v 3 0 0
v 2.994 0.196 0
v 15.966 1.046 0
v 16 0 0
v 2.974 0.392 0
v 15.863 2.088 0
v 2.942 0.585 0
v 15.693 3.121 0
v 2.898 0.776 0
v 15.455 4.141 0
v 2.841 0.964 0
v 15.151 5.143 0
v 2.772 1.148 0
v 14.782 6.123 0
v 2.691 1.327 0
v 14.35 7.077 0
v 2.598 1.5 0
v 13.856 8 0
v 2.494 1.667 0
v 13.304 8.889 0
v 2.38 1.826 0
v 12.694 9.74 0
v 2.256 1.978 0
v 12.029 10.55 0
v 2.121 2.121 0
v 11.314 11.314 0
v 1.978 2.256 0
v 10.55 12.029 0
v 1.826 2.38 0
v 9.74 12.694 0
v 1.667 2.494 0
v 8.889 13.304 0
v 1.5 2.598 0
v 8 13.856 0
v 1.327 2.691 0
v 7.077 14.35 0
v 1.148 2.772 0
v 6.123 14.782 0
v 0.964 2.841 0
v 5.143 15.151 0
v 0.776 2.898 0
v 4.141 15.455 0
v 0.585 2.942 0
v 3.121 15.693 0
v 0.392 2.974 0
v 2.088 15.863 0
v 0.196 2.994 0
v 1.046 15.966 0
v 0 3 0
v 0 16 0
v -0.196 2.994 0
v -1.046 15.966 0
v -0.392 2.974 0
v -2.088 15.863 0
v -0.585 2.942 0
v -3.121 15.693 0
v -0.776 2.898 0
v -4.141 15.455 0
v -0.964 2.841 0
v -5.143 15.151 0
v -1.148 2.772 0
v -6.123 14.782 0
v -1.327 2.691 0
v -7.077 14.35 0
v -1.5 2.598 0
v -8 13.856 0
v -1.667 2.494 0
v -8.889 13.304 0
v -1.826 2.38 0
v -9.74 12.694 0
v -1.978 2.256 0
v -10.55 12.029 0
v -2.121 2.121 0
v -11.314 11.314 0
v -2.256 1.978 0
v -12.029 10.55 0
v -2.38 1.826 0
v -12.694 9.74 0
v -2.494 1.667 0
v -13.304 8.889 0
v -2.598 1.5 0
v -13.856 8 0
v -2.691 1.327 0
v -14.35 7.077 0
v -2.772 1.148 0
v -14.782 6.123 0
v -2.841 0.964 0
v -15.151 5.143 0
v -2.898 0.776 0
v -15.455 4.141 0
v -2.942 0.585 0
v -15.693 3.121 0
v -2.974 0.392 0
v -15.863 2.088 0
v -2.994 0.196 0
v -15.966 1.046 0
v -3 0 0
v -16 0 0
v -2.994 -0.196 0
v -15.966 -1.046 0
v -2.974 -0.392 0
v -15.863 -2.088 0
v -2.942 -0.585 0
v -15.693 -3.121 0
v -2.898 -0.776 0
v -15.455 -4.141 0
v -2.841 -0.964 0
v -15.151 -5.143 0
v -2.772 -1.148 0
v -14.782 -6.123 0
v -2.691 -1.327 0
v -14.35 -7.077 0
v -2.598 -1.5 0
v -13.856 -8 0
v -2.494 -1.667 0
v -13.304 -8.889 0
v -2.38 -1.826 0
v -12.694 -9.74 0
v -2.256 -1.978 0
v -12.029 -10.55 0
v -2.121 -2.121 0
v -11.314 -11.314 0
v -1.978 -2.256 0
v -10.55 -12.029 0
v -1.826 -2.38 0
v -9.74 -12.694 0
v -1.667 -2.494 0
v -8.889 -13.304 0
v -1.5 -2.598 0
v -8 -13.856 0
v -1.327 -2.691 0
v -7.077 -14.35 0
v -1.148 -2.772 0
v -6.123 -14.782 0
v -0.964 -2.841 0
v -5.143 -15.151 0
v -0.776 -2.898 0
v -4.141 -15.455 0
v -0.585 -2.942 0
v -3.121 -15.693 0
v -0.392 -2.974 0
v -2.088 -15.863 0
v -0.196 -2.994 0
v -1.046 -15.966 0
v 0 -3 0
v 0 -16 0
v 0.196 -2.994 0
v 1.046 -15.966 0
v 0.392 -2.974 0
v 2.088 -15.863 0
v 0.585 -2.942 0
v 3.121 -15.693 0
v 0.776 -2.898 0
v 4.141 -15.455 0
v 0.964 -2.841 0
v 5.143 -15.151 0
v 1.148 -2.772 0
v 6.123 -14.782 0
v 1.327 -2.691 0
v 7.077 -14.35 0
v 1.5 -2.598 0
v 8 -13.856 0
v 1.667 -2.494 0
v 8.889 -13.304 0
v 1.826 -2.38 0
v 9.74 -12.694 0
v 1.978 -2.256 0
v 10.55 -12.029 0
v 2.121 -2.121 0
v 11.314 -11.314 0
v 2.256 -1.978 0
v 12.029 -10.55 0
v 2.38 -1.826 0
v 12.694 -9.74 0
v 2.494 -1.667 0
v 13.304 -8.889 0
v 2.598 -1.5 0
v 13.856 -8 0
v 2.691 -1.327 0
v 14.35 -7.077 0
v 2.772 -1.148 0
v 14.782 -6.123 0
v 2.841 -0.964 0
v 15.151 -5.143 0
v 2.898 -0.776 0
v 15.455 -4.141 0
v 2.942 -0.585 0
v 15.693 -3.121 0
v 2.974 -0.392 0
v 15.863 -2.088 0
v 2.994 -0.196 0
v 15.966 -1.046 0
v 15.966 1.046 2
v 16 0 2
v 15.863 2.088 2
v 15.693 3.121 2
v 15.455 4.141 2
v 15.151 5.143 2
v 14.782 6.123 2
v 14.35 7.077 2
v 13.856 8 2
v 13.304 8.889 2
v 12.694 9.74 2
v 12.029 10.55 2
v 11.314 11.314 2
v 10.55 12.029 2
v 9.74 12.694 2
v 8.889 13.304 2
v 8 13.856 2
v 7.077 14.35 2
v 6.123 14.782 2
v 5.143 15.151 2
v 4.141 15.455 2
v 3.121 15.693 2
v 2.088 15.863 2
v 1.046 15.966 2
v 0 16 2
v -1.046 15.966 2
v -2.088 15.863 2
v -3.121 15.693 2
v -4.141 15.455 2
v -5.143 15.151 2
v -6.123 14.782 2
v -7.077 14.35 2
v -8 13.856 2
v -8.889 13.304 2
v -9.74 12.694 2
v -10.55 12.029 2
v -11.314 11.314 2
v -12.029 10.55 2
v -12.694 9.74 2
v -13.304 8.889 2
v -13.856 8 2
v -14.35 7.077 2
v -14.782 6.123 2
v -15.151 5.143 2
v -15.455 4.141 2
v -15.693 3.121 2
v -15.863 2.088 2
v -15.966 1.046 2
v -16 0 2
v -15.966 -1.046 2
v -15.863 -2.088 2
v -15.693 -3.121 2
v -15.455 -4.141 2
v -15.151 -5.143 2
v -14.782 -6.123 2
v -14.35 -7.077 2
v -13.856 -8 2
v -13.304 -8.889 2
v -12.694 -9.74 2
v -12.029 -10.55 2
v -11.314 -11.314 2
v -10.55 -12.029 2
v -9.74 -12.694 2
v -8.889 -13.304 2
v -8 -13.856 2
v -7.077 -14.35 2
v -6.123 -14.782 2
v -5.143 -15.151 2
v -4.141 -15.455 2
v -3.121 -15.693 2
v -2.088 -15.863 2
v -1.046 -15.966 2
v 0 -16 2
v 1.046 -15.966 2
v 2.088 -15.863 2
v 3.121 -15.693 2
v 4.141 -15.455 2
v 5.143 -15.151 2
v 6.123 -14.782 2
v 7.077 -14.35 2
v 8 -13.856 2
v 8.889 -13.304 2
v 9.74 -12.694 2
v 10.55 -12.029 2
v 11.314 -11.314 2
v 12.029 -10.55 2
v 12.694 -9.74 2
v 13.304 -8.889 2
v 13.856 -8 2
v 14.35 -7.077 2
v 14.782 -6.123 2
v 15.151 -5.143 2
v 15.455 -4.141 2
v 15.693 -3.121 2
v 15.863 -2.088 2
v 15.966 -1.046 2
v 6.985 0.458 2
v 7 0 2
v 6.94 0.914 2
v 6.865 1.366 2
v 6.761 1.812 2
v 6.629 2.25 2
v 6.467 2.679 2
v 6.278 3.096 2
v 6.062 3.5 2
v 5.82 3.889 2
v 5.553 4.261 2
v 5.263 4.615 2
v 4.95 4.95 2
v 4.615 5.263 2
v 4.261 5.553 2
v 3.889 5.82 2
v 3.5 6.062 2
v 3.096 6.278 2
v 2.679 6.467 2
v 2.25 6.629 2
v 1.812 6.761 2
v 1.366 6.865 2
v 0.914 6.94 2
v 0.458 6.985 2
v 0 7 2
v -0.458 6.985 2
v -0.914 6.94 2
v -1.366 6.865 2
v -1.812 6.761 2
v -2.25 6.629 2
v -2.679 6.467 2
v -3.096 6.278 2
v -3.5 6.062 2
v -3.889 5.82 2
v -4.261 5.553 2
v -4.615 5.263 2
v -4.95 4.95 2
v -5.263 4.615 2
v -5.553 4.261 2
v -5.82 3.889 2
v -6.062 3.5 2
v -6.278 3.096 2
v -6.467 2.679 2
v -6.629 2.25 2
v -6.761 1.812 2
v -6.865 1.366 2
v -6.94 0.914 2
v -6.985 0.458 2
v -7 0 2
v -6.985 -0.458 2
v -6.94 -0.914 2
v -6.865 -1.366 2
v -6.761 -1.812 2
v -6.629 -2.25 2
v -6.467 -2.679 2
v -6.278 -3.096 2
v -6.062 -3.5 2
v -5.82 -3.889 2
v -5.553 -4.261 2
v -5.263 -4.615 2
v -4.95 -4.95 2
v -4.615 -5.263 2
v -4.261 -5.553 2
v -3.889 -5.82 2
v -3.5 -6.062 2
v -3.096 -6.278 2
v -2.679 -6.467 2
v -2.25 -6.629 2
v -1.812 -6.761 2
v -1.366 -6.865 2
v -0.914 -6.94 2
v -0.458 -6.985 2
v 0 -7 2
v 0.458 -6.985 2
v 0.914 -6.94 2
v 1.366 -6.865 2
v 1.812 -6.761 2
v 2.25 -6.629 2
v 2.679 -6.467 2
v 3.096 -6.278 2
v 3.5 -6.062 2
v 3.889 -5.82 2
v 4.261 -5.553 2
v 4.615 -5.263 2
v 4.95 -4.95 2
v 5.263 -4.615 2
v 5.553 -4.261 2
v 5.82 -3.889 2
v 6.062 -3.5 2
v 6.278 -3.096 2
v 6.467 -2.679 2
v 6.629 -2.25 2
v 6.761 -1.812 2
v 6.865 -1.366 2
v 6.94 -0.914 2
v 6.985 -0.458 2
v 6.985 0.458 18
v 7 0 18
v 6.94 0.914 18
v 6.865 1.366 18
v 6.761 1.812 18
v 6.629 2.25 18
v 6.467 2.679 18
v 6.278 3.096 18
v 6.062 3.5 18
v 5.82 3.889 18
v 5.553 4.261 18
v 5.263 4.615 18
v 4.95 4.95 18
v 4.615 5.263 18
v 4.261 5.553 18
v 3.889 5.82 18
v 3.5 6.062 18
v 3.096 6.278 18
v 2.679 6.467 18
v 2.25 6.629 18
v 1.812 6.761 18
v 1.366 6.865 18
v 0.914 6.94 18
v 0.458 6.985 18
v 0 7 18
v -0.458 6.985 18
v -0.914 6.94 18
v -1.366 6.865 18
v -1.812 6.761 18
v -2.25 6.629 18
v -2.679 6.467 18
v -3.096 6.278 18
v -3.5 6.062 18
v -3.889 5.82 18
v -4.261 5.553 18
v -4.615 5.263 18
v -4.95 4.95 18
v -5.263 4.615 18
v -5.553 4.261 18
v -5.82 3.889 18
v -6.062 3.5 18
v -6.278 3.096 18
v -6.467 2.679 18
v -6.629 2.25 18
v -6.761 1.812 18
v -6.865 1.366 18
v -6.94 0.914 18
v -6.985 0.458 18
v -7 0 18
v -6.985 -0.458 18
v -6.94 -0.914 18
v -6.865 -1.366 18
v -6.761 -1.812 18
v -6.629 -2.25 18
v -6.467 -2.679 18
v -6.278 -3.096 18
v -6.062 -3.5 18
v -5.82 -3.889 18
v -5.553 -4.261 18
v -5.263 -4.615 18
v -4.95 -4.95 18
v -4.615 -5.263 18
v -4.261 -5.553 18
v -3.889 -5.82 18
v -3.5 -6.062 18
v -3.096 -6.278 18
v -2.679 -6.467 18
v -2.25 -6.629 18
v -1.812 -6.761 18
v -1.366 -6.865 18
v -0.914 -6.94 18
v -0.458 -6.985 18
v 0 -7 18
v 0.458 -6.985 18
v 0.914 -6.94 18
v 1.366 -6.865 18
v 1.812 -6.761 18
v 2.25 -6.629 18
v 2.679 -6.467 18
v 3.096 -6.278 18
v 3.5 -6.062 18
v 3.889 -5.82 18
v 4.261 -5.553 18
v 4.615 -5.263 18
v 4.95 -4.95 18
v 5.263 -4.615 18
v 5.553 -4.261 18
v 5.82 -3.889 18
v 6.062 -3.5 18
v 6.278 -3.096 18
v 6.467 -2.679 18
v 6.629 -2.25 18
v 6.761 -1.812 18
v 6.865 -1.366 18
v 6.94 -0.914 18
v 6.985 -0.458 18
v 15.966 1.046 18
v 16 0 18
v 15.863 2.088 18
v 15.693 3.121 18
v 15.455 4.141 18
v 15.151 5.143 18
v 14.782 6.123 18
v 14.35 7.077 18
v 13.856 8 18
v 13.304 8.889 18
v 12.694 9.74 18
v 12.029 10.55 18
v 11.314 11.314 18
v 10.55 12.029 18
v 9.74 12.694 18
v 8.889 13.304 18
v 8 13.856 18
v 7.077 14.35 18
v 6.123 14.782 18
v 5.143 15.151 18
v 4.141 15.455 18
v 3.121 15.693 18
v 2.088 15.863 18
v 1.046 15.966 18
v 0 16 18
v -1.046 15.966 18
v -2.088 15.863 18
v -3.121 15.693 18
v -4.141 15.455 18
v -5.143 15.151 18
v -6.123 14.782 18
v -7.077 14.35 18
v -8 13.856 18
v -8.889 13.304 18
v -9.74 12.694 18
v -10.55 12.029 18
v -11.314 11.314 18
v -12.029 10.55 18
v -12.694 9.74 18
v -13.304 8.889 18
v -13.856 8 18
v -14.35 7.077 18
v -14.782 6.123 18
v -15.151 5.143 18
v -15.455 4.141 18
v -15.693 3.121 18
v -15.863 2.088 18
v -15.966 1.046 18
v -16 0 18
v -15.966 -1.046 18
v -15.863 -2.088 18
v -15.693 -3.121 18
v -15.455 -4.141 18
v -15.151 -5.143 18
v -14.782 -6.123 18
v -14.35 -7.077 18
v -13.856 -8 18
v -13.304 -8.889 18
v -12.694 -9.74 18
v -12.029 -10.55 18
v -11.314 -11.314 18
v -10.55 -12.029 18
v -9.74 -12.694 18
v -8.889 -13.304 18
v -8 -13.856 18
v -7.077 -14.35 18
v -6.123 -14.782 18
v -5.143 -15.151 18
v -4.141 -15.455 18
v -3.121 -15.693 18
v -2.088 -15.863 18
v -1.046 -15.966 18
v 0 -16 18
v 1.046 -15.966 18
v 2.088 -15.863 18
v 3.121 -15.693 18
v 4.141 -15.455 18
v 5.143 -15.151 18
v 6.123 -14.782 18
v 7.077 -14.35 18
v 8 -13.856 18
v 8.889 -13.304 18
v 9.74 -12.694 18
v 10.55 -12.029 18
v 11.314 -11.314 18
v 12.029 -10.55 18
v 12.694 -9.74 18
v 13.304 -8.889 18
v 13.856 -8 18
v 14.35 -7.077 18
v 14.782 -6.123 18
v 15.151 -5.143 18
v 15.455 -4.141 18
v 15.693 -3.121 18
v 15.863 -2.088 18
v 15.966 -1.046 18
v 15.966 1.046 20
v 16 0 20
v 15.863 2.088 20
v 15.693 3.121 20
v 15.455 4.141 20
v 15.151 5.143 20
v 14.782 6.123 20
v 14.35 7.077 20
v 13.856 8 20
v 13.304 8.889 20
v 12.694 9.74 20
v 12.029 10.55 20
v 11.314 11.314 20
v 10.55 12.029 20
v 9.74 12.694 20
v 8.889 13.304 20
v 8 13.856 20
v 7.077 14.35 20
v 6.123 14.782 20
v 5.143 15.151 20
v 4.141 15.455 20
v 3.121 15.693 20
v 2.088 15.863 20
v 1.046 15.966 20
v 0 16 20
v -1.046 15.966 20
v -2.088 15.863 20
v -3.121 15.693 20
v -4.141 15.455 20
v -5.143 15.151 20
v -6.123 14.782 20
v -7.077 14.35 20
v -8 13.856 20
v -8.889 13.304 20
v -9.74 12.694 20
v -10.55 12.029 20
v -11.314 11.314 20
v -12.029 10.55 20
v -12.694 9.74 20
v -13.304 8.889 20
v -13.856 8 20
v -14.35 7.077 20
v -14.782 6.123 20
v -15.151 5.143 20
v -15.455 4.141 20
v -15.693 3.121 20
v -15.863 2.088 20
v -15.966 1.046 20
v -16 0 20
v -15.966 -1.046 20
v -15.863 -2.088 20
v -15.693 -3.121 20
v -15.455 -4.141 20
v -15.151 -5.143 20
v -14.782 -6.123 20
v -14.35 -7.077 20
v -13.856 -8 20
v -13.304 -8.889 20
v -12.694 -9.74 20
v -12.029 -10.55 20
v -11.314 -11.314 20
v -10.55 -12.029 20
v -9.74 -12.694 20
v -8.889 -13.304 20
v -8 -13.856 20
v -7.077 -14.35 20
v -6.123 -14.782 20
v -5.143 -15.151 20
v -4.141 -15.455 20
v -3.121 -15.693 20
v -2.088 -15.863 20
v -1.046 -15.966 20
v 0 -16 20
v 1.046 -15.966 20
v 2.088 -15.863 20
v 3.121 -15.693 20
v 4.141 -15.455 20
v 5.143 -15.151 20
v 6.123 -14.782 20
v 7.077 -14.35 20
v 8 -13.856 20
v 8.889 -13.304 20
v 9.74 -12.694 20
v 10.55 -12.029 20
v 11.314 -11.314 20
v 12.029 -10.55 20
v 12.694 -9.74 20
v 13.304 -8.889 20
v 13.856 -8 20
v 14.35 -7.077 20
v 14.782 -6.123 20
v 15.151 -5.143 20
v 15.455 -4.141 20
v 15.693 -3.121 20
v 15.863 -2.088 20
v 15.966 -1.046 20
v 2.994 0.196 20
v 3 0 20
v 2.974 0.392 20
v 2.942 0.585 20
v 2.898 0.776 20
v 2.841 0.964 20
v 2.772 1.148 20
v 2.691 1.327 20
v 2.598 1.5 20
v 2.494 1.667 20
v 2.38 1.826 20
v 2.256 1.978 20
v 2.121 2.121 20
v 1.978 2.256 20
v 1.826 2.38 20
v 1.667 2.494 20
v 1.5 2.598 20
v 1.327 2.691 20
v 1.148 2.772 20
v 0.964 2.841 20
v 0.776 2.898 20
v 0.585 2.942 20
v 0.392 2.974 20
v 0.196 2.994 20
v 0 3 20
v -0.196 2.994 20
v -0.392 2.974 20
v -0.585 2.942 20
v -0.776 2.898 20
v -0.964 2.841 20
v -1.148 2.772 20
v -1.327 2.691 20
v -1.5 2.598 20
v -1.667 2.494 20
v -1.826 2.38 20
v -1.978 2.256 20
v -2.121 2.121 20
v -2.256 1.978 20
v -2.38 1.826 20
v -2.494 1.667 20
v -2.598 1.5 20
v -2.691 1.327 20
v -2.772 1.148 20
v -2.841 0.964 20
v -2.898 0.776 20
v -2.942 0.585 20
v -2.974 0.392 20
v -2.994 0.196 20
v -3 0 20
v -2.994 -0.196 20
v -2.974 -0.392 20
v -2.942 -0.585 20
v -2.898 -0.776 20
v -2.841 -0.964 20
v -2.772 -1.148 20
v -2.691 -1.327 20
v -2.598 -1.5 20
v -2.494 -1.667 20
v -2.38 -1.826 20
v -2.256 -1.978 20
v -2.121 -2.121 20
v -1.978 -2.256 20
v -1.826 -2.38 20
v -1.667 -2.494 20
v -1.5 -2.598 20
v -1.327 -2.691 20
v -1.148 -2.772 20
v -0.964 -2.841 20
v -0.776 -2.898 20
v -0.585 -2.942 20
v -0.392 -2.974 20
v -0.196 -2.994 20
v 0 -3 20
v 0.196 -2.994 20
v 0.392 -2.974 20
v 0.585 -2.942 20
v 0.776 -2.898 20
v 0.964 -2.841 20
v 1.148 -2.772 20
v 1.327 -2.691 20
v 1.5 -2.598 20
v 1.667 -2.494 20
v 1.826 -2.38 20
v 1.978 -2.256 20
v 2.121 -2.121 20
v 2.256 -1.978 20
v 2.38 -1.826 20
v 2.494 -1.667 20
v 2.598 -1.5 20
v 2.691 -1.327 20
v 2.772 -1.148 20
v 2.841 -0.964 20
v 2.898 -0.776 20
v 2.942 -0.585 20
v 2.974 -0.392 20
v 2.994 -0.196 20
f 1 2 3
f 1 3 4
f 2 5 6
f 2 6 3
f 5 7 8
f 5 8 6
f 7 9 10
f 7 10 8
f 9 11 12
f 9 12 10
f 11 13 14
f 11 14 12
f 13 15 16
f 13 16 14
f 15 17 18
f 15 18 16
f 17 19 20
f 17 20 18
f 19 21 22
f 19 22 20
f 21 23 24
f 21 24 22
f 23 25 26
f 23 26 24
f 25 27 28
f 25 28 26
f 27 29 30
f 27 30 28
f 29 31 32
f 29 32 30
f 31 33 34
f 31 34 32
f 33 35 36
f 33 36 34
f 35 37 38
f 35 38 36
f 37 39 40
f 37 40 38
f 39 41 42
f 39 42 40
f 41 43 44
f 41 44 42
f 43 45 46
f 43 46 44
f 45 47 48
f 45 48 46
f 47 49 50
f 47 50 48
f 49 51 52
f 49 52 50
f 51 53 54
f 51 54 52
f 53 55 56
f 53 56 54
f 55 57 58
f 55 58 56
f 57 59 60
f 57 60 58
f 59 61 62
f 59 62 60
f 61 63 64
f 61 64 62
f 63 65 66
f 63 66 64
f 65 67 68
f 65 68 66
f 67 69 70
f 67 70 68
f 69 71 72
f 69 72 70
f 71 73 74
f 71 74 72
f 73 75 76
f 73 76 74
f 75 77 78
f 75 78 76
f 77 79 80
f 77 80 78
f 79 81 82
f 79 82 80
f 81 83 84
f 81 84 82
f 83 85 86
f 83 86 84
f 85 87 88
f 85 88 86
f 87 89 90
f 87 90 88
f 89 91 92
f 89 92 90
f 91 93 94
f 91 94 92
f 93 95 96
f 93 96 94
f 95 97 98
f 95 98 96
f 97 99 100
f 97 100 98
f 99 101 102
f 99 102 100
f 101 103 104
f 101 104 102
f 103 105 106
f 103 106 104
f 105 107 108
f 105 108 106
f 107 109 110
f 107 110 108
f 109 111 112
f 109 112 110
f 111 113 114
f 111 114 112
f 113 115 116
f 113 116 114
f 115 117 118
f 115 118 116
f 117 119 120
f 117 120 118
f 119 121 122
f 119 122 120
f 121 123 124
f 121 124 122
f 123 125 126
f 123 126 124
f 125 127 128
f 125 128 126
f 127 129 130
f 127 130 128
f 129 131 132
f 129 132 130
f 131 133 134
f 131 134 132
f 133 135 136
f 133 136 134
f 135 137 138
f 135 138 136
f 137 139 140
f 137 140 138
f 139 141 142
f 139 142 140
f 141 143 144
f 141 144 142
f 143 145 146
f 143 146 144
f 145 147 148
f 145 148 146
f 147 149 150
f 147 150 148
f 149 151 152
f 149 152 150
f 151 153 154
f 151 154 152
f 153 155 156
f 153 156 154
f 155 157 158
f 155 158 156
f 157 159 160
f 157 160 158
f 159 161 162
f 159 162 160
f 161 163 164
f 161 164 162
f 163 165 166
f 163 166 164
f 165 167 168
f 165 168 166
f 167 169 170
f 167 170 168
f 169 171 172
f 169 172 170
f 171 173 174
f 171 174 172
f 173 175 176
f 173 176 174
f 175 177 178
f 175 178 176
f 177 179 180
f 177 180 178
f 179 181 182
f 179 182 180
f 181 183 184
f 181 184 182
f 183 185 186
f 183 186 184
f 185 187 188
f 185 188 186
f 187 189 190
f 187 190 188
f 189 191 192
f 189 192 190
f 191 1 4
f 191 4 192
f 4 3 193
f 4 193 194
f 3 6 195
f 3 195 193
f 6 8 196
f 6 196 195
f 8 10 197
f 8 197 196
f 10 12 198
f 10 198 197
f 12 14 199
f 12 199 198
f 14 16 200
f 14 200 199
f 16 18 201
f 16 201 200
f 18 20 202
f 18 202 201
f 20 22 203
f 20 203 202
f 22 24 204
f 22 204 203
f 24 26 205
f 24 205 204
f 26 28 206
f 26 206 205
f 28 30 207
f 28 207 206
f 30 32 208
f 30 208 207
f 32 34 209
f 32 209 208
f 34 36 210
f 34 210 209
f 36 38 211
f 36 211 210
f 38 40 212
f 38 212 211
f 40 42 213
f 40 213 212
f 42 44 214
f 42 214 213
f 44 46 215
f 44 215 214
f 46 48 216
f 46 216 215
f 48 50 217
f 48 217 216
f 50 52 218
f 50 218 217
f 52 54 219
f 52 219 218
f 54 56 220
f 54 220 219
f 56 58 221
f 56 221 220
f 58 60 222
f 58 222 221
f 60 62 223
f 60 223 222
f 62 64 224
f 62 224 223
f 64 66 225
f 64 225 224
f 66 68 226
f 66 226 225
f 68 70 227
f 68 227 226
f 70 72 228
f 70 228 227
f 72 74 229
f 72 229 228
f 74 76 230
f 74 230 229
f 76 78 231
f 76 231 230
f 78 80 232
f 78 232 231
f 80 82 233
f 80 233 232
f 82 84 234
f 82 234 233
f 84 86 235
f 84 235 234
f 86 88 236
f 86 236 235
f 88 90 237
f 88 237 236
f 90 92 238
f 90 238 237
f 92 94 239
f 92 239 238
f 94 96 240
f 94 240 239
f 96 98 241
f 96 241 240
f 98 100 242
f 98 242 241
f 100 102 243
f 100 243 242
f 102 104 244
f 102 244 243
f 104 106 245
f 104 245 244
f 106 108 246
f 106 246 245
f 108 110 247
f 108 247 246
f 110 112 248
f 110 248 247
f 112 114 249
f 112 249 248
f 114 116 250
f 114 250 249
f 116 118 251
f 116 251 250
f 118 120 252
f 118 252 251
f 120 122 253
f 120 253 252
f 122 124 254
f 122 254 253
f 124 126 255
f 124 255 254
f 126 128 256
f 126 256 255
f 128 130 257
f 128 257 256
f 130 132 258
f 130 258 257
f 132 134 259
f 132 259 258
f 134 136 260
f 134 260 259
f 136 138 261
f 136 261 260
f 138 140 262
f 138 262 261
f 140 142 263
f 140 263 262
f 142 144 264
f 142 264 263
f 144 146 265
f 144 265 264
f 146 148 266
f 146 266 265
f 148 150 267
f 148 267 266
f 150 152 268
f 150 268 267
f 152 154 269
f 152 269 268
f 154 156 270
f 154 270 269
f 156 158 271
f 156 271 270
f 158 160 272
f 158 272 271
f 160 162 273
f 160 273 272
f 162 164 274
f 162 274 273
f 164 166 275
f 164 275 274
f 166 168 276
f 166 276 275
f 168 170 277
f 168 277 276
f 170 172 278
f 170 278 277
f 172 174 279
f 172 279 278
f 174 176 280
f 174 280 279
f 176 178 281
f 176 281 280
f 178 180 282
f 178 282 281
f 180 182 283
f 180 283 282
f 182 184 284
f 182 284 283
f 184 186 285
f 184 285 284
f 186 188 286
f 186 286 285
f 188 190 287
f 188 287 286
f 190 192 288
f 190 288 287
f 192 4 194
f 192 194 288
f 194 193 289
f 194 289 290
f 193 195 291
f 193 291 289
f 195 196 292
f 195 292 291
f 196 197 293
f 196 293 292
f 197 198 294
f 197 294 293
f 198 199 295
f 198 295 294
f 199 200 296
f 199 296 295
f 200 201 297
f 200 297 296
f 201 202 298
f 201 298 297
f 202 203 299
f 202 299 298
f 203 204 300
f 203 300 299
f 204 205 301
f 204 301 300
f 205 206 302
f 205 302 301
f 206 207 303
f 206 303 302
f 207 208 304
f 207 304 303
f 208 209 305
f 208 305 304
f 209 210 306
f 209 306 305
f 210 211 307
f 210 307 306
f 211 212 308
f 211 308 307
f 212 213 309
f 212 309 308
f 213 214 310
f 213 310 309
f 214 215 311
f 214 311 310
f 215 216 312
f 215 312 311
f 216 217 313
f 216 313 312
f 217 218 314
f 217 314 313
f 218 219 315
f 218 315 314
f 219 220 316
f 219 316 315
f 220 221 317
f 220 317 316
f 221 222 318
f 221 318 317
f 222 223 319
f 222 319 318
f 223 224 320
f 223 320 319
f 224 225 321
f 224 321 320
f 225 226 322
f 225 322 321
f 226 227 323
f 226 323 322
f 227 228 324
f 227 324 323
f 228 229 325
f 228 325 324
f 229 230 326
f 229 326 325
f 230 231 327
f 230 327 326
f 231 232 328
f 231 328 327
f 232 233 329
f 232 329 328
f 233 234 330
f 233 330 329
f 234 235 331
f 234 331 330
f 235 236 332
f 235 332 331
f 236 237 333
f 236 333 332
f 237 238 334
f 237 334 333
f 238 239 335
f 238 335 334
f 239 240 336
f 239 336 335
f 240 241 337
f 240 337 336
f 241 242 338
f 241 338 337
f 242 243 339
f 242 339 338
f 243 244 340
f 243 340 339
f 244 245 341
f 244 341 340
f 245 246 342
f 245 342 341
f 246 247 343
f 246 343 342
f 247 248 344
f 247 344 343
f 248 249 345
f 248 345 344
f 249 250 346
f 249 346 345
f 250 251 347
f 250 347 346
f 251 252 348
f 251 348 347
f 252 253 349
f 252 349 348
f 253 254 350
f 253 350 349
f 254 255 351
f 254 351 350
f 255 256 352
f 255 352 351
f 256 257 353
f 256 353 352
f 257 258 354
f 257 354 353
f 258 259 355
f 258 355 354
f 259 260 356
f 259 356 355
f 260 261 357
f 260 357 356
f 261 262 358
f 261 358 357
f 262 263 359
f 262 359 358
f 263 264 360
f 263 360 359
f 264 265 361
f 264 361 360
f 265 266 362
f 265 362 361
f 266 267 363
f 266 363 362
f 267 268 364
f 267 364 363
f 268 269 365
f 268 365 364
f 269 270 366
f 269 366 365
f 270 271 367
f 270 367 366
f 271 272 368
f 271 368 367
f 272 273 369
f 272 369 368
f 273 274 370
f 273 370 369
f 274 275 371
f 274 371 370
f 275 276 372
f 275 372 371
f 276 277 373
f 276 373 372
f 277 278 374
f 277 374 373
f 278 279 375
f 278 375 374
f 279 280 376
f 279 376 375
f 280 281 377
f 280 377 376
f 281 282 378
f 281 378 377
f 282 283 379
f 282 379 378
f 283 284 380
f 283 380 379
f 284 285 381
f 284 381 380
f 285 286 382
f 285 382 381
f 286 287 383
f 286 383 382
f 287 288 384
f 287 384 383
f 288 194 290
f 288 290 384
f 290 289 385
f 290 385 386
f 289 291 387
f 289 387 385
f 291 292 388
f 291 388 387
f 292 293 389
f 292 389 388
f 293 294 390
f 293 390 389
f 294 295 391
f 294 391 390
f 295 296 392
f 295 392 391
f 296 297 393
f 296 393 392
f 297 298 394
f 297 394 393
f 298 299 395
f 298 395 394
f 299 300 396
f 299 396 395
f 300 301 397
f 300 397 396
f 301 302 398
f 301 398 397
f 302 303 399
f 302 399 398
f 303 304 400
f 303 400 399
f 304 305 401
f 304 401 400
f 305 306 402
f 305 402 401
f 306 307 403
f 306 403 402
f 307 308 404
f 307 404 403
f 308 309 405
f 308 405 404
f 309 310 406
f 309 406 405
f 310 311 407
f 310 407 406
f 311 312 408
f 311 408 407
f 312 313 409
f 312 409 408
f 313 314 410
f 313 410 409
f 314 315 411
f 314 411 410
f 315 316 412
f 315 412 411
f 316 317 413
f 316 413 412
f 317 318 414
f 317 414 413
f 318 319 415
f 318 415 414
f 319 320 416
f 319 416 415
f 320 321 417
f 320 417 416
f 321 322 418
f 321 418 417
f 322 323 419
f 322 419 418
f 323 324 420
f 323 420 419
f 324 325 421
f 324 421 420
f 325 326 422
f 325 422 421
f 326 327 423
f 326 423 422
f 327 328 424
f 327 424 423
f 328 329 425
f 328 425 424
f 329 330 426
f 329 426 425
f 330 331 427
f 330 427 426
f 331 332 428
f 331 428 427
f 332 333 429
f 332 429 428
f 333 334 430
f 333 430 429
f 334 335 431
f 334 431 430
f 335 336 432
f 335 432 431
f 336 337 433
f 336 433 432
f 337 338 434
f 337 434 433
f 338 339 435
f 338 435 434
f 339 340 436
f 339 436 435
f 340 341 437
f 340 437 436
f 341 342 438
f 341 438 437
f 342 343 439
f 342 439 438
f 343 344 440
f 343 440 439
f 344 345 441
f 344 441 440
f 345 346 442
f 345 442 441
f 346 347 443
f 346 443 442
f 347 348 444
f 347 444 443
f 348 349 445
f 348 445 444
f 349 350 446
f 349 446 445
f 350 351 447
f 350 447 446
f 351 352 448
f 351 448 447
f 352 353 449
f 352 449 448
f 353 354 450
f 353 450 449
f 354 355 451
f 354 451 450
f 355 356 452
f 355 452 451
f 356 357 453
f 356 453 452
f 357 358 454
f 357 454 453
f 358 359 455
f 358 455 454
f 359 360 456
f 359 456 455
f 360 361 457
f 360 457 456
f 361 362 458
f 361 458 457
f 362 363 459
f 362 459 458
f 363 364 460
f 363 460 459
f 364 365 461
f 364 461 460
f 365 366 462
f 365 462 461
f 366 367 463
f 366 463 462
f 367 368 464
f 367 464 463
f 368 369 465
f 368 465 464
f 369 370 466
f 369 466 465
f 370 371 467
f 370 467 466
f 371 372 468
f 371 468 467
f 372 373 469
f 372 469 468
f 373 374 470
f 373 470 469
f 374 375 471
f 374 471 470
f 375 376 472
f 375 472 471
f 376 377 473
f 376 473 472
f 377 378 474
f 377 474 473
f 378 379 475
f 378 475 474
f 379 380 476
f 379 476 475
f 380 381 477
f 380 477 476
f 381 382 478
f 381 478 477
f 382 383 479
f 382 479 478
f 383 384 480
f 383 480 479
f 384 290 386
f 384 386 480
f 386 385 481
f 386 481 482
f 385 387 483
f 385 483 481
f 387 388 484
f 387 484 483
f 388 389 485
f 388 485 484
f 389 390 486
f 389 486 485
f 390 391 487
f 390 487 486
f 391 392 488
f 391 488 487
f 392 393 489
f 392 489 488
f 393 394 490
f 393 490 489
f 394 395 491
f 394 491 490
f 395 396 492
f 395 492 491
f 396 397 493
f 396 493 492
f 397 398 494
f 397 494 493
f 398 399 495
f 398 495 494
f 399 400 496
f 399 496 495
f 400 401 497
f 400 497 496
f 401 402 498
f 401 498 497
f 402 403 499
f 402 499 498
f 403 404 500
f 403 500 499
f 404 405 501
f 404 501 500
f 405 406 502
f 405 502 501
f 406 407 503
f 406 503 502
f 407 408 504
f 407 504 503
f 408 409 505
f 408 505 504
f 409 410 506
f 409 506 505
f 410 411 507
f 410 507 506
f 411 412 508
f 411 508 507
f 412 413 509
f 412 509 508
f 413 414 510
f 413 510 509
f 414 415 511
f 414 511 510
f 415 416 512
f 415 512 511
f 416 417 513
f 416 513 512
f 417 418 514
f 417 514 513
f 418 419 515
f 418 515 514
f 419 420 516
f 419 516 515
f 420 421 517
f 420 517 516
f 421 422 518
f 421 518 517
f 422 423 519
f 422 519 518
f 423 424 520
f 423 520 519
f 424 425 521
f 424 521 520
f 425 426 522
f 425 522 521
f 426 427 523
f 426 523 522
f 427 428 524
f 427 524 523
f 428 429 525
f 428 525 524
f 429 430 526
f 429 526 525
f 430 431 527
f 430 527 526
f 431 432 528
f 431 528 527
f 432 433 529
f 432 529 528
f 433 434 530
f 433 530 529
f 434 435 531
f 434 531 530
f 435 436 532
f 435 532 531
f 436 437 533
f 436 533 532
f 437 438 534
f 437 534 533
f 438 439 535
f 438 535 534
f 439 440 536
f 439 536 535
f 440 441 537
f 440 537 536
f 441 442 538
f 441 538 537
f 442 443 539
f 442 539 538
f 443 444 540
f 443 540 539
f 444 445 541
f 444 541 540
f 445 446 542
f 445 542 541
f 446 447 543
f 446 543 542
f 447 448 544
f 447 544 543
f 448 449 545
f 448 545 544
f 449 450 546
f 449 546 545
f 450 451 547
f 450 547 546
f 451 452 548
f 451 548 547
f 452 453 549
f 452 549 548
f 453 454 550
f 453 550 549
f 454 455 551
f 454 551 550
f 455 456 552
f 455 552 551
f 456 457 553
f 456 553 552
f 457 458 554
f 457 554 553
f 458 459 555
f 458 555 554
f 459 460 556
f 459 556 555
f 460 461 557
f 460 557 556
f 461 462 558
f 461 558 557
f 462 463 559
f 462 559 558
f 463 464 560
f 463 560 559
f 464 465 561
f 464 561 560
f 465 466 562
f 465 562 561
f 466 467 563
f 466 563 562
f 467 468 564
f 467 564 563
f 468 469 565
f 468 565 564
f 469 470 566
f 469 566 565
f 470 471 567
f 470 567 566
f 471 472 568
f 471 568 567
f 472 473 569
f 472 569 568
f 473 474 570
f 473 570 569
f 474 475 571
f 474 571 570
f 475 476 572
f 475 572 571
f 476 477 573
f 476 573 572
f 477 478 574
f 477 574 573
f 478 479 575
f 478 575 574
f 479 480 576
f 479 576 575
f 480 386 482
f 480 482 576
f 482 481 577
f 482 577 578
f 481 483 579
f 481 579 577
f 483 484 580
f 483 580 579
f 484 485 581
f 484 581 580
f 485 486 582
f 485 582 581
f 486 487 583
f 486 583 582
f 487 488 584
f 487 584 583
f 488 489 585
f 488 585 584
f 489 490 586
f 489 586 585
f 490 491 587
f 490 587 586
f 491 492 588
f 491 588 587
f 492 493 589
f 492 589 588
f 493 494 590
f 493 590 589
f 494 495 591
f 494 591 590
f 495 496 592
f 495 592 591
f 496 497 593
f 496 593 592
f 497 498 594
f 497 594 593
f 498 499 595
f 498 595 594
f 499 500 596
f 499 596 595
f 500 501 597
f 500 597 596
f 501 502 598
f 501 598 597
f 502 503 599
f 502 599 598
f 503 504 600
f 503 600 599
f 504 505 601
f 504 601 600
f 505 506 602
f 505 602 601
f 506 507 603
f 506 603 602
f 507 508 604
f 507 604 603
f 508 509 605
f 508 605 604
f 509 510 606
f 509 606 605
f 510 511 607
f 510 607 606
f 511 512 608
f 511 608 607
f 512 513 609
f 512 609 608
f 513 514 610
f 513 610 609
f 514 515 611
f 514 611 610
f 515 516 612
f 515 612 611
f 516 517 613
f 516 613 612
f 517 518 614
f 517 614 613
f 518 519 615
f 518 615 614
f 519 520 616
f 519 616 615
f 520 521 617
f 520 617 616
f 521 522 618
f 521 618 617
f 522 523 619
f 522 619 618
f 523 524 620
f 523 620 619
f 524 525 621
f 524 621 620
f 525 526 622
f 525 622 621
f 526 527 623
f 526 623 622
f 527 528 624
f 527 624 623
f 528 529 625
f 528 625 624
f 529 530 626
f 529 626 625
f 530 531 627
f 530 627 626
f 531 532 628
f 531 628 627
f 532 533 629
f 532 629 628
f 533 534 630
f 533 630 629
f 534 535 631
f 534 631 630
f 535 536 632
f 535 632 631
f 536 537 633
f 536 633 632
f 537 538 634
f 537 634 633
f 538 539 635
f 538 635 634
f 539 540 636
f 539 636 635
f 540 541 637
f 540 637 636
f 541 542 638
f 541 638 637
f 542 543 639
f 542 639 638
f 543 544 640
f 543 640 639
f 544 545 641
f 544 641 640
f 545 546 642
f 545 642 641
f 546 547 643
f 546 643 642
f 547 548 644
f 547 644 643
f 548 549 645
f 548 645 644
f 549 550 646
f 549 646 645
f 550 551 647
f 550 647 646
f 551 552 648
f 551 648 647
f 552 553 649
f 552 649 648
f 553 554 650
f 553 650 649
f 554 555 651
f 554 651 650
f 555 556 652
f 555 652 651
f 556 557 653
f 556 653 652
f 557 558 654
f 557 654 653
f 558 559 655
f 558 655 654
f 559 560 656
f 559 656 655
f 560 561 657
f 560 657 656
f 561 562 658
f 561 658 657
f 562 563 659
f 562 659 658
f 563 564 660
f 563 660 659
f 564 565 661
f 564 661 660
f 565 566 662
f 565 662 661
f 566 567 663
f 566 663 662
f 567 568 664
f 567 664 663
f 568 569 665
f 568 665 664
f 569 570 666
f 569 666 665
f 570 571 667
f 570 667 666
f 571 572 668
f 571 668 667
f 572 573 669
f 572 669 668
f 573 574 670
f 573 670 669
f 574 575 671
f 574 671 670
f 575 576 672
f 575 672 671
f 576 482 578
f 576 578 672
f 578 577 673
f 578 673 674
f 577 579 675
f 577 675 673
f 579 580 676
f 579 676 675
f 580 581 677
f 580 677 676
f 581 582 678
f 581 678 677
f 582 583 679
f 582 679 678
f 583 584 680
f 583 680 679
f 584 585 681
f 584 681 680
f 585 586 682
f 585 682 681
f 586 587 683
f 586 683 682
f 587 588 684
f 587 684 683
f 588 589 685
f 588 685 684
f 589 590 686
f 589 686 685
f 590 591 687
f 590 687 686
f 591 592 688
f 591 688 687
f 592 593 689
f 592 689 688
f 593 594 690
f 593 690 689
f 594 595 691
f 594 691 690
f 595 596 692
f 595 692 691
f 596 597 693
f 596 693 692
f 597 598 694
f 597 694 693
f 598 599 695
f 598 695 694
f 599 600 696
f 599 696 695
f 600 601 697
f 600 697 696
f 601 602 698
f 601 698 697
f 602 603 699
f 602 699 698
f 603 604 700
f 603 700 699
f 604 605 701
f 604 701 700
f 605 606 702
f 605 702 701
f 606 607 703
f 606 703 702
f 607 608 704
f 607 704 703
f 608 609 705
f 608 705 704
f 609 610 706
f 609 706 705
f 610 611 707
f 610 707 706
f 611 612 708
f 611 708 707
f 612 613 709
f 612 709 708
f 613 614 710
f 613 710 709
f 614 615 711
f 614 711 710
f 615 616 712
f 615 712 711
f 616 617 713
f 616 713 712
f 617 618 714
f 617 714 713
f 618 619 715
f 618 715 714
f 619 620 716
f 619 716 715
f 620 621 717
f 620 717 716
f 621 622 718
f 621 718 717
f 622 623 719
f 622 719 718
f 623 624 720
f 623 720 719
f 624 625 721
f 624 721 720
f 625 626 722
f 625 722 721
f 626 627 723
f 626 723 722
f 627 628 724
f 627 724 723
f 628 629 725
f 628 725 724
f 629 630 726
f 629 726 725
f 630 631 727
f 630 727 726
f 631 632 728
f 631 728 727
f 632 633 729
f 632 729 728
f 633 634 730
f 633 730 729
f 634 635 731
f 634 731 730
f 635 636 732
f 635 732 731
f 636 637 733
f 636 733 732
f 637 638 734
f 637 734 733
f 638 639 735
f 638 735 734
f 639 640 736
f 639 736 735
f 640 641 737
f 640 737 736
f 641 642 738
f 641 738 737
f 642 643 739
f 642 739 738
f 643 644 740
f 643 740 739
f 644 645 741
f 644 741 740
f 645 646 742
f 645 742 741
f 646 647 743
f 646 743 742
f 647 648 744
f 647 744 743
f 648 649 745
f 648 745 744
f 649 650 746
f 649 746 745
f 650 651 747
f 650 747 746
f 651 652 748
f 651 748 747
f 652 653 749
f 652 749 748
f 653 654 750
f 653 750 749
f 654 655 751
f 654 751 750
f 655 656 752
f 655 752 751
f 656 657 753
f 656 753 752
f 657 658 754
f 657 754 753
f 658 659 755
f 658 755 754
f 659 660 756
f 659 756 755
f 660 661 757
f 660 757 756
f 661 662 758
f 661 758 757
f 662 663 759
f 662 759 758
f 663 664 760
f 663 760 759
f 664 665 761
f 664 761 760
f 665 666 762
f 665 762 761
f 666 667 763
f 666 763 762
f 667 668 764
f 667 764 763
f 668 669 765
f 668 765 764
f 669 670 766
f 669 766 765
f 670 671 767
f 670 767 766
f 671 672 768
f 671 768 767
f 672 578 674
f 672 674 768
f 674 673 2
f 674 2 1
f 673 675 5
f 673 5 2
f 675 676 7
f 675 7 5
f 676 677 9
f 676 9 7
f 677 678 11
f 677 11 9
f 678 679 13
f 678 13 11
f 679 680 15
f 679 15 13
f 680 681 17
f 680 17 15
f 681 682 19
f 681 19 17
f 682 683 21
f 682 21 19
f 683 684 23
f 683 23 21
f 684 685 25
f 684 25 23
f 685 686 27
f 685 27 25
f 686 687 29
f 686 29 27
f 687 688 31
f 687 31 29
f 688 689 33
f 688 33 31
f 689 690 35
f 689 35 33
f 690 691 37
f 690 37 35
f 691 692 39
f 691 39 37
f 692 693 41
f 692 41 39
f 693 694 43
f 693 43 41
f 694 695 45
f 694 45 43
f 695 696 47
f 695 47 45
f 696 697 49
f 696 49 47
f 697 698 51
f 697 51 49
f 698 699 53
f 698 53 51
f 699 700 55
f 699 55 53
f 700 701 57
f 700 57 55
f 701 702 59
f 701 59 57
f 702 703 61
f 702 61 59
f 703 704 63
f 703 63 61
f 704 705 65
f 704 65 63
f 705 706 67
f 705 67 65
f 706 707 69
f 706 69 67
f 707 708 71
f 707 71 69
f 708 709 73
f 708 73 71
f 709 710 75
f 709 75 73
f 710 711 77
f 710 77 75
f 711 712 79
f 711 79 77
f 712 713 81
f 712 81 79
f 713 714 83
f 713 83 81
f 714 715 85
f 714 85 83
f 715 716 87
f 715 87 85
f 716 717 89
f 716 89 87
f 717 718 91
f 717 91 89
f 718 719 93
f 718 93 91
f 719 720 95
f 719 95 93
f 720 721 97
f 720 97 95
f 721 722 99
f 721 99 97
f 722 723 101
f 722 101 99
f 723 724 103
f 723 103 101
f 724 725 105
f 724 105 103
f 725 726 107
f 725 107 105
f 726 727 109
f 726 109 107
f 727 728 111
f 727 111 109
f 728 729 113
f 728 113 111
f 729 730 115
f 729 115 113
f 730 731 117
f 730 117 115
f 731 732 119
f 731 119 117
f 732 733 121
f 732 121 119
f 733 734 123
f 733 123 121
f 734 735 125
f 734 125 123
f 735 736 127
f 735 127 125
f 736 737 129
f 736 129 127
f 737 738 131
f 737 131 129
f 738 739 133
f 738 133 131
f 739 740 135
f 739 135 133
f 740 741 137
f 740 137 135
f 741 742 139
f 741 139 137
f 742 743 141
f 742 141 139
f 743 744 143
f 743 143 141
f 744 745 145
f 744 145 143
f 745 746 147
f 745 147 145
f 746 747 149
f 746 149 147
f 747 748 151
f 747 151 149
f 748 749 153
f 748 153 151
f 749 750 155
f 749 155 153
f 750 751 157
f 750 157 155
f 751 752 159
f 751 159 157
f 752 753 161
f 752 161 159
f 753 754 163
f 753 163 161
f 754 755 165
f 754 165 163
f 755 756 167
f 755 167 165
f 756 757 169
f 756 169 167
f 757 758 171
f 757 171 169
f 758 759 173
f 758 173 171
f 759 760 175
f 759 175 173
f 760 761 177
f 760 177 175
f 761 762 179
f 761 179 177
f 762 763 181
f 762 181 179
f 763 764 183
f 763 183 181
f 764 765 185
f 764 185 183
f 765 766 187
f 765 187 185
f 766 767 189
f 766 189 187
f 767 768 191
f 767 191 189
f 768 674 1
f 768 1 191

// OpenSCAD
// Original MechIntel educational model. CC0-1.0. Units: mm.
// Not a standardized or load-rated component.
$fn=96;
// Section points: [radius, height], mm. Edit to change the profile.
section=[[3, 0], [16, 0], [16, 2], [7, 2], [7, 18], [16, 18], [16, 20], [3, 20]];
rotate_extrude($fn=96) polygon(points=section);
